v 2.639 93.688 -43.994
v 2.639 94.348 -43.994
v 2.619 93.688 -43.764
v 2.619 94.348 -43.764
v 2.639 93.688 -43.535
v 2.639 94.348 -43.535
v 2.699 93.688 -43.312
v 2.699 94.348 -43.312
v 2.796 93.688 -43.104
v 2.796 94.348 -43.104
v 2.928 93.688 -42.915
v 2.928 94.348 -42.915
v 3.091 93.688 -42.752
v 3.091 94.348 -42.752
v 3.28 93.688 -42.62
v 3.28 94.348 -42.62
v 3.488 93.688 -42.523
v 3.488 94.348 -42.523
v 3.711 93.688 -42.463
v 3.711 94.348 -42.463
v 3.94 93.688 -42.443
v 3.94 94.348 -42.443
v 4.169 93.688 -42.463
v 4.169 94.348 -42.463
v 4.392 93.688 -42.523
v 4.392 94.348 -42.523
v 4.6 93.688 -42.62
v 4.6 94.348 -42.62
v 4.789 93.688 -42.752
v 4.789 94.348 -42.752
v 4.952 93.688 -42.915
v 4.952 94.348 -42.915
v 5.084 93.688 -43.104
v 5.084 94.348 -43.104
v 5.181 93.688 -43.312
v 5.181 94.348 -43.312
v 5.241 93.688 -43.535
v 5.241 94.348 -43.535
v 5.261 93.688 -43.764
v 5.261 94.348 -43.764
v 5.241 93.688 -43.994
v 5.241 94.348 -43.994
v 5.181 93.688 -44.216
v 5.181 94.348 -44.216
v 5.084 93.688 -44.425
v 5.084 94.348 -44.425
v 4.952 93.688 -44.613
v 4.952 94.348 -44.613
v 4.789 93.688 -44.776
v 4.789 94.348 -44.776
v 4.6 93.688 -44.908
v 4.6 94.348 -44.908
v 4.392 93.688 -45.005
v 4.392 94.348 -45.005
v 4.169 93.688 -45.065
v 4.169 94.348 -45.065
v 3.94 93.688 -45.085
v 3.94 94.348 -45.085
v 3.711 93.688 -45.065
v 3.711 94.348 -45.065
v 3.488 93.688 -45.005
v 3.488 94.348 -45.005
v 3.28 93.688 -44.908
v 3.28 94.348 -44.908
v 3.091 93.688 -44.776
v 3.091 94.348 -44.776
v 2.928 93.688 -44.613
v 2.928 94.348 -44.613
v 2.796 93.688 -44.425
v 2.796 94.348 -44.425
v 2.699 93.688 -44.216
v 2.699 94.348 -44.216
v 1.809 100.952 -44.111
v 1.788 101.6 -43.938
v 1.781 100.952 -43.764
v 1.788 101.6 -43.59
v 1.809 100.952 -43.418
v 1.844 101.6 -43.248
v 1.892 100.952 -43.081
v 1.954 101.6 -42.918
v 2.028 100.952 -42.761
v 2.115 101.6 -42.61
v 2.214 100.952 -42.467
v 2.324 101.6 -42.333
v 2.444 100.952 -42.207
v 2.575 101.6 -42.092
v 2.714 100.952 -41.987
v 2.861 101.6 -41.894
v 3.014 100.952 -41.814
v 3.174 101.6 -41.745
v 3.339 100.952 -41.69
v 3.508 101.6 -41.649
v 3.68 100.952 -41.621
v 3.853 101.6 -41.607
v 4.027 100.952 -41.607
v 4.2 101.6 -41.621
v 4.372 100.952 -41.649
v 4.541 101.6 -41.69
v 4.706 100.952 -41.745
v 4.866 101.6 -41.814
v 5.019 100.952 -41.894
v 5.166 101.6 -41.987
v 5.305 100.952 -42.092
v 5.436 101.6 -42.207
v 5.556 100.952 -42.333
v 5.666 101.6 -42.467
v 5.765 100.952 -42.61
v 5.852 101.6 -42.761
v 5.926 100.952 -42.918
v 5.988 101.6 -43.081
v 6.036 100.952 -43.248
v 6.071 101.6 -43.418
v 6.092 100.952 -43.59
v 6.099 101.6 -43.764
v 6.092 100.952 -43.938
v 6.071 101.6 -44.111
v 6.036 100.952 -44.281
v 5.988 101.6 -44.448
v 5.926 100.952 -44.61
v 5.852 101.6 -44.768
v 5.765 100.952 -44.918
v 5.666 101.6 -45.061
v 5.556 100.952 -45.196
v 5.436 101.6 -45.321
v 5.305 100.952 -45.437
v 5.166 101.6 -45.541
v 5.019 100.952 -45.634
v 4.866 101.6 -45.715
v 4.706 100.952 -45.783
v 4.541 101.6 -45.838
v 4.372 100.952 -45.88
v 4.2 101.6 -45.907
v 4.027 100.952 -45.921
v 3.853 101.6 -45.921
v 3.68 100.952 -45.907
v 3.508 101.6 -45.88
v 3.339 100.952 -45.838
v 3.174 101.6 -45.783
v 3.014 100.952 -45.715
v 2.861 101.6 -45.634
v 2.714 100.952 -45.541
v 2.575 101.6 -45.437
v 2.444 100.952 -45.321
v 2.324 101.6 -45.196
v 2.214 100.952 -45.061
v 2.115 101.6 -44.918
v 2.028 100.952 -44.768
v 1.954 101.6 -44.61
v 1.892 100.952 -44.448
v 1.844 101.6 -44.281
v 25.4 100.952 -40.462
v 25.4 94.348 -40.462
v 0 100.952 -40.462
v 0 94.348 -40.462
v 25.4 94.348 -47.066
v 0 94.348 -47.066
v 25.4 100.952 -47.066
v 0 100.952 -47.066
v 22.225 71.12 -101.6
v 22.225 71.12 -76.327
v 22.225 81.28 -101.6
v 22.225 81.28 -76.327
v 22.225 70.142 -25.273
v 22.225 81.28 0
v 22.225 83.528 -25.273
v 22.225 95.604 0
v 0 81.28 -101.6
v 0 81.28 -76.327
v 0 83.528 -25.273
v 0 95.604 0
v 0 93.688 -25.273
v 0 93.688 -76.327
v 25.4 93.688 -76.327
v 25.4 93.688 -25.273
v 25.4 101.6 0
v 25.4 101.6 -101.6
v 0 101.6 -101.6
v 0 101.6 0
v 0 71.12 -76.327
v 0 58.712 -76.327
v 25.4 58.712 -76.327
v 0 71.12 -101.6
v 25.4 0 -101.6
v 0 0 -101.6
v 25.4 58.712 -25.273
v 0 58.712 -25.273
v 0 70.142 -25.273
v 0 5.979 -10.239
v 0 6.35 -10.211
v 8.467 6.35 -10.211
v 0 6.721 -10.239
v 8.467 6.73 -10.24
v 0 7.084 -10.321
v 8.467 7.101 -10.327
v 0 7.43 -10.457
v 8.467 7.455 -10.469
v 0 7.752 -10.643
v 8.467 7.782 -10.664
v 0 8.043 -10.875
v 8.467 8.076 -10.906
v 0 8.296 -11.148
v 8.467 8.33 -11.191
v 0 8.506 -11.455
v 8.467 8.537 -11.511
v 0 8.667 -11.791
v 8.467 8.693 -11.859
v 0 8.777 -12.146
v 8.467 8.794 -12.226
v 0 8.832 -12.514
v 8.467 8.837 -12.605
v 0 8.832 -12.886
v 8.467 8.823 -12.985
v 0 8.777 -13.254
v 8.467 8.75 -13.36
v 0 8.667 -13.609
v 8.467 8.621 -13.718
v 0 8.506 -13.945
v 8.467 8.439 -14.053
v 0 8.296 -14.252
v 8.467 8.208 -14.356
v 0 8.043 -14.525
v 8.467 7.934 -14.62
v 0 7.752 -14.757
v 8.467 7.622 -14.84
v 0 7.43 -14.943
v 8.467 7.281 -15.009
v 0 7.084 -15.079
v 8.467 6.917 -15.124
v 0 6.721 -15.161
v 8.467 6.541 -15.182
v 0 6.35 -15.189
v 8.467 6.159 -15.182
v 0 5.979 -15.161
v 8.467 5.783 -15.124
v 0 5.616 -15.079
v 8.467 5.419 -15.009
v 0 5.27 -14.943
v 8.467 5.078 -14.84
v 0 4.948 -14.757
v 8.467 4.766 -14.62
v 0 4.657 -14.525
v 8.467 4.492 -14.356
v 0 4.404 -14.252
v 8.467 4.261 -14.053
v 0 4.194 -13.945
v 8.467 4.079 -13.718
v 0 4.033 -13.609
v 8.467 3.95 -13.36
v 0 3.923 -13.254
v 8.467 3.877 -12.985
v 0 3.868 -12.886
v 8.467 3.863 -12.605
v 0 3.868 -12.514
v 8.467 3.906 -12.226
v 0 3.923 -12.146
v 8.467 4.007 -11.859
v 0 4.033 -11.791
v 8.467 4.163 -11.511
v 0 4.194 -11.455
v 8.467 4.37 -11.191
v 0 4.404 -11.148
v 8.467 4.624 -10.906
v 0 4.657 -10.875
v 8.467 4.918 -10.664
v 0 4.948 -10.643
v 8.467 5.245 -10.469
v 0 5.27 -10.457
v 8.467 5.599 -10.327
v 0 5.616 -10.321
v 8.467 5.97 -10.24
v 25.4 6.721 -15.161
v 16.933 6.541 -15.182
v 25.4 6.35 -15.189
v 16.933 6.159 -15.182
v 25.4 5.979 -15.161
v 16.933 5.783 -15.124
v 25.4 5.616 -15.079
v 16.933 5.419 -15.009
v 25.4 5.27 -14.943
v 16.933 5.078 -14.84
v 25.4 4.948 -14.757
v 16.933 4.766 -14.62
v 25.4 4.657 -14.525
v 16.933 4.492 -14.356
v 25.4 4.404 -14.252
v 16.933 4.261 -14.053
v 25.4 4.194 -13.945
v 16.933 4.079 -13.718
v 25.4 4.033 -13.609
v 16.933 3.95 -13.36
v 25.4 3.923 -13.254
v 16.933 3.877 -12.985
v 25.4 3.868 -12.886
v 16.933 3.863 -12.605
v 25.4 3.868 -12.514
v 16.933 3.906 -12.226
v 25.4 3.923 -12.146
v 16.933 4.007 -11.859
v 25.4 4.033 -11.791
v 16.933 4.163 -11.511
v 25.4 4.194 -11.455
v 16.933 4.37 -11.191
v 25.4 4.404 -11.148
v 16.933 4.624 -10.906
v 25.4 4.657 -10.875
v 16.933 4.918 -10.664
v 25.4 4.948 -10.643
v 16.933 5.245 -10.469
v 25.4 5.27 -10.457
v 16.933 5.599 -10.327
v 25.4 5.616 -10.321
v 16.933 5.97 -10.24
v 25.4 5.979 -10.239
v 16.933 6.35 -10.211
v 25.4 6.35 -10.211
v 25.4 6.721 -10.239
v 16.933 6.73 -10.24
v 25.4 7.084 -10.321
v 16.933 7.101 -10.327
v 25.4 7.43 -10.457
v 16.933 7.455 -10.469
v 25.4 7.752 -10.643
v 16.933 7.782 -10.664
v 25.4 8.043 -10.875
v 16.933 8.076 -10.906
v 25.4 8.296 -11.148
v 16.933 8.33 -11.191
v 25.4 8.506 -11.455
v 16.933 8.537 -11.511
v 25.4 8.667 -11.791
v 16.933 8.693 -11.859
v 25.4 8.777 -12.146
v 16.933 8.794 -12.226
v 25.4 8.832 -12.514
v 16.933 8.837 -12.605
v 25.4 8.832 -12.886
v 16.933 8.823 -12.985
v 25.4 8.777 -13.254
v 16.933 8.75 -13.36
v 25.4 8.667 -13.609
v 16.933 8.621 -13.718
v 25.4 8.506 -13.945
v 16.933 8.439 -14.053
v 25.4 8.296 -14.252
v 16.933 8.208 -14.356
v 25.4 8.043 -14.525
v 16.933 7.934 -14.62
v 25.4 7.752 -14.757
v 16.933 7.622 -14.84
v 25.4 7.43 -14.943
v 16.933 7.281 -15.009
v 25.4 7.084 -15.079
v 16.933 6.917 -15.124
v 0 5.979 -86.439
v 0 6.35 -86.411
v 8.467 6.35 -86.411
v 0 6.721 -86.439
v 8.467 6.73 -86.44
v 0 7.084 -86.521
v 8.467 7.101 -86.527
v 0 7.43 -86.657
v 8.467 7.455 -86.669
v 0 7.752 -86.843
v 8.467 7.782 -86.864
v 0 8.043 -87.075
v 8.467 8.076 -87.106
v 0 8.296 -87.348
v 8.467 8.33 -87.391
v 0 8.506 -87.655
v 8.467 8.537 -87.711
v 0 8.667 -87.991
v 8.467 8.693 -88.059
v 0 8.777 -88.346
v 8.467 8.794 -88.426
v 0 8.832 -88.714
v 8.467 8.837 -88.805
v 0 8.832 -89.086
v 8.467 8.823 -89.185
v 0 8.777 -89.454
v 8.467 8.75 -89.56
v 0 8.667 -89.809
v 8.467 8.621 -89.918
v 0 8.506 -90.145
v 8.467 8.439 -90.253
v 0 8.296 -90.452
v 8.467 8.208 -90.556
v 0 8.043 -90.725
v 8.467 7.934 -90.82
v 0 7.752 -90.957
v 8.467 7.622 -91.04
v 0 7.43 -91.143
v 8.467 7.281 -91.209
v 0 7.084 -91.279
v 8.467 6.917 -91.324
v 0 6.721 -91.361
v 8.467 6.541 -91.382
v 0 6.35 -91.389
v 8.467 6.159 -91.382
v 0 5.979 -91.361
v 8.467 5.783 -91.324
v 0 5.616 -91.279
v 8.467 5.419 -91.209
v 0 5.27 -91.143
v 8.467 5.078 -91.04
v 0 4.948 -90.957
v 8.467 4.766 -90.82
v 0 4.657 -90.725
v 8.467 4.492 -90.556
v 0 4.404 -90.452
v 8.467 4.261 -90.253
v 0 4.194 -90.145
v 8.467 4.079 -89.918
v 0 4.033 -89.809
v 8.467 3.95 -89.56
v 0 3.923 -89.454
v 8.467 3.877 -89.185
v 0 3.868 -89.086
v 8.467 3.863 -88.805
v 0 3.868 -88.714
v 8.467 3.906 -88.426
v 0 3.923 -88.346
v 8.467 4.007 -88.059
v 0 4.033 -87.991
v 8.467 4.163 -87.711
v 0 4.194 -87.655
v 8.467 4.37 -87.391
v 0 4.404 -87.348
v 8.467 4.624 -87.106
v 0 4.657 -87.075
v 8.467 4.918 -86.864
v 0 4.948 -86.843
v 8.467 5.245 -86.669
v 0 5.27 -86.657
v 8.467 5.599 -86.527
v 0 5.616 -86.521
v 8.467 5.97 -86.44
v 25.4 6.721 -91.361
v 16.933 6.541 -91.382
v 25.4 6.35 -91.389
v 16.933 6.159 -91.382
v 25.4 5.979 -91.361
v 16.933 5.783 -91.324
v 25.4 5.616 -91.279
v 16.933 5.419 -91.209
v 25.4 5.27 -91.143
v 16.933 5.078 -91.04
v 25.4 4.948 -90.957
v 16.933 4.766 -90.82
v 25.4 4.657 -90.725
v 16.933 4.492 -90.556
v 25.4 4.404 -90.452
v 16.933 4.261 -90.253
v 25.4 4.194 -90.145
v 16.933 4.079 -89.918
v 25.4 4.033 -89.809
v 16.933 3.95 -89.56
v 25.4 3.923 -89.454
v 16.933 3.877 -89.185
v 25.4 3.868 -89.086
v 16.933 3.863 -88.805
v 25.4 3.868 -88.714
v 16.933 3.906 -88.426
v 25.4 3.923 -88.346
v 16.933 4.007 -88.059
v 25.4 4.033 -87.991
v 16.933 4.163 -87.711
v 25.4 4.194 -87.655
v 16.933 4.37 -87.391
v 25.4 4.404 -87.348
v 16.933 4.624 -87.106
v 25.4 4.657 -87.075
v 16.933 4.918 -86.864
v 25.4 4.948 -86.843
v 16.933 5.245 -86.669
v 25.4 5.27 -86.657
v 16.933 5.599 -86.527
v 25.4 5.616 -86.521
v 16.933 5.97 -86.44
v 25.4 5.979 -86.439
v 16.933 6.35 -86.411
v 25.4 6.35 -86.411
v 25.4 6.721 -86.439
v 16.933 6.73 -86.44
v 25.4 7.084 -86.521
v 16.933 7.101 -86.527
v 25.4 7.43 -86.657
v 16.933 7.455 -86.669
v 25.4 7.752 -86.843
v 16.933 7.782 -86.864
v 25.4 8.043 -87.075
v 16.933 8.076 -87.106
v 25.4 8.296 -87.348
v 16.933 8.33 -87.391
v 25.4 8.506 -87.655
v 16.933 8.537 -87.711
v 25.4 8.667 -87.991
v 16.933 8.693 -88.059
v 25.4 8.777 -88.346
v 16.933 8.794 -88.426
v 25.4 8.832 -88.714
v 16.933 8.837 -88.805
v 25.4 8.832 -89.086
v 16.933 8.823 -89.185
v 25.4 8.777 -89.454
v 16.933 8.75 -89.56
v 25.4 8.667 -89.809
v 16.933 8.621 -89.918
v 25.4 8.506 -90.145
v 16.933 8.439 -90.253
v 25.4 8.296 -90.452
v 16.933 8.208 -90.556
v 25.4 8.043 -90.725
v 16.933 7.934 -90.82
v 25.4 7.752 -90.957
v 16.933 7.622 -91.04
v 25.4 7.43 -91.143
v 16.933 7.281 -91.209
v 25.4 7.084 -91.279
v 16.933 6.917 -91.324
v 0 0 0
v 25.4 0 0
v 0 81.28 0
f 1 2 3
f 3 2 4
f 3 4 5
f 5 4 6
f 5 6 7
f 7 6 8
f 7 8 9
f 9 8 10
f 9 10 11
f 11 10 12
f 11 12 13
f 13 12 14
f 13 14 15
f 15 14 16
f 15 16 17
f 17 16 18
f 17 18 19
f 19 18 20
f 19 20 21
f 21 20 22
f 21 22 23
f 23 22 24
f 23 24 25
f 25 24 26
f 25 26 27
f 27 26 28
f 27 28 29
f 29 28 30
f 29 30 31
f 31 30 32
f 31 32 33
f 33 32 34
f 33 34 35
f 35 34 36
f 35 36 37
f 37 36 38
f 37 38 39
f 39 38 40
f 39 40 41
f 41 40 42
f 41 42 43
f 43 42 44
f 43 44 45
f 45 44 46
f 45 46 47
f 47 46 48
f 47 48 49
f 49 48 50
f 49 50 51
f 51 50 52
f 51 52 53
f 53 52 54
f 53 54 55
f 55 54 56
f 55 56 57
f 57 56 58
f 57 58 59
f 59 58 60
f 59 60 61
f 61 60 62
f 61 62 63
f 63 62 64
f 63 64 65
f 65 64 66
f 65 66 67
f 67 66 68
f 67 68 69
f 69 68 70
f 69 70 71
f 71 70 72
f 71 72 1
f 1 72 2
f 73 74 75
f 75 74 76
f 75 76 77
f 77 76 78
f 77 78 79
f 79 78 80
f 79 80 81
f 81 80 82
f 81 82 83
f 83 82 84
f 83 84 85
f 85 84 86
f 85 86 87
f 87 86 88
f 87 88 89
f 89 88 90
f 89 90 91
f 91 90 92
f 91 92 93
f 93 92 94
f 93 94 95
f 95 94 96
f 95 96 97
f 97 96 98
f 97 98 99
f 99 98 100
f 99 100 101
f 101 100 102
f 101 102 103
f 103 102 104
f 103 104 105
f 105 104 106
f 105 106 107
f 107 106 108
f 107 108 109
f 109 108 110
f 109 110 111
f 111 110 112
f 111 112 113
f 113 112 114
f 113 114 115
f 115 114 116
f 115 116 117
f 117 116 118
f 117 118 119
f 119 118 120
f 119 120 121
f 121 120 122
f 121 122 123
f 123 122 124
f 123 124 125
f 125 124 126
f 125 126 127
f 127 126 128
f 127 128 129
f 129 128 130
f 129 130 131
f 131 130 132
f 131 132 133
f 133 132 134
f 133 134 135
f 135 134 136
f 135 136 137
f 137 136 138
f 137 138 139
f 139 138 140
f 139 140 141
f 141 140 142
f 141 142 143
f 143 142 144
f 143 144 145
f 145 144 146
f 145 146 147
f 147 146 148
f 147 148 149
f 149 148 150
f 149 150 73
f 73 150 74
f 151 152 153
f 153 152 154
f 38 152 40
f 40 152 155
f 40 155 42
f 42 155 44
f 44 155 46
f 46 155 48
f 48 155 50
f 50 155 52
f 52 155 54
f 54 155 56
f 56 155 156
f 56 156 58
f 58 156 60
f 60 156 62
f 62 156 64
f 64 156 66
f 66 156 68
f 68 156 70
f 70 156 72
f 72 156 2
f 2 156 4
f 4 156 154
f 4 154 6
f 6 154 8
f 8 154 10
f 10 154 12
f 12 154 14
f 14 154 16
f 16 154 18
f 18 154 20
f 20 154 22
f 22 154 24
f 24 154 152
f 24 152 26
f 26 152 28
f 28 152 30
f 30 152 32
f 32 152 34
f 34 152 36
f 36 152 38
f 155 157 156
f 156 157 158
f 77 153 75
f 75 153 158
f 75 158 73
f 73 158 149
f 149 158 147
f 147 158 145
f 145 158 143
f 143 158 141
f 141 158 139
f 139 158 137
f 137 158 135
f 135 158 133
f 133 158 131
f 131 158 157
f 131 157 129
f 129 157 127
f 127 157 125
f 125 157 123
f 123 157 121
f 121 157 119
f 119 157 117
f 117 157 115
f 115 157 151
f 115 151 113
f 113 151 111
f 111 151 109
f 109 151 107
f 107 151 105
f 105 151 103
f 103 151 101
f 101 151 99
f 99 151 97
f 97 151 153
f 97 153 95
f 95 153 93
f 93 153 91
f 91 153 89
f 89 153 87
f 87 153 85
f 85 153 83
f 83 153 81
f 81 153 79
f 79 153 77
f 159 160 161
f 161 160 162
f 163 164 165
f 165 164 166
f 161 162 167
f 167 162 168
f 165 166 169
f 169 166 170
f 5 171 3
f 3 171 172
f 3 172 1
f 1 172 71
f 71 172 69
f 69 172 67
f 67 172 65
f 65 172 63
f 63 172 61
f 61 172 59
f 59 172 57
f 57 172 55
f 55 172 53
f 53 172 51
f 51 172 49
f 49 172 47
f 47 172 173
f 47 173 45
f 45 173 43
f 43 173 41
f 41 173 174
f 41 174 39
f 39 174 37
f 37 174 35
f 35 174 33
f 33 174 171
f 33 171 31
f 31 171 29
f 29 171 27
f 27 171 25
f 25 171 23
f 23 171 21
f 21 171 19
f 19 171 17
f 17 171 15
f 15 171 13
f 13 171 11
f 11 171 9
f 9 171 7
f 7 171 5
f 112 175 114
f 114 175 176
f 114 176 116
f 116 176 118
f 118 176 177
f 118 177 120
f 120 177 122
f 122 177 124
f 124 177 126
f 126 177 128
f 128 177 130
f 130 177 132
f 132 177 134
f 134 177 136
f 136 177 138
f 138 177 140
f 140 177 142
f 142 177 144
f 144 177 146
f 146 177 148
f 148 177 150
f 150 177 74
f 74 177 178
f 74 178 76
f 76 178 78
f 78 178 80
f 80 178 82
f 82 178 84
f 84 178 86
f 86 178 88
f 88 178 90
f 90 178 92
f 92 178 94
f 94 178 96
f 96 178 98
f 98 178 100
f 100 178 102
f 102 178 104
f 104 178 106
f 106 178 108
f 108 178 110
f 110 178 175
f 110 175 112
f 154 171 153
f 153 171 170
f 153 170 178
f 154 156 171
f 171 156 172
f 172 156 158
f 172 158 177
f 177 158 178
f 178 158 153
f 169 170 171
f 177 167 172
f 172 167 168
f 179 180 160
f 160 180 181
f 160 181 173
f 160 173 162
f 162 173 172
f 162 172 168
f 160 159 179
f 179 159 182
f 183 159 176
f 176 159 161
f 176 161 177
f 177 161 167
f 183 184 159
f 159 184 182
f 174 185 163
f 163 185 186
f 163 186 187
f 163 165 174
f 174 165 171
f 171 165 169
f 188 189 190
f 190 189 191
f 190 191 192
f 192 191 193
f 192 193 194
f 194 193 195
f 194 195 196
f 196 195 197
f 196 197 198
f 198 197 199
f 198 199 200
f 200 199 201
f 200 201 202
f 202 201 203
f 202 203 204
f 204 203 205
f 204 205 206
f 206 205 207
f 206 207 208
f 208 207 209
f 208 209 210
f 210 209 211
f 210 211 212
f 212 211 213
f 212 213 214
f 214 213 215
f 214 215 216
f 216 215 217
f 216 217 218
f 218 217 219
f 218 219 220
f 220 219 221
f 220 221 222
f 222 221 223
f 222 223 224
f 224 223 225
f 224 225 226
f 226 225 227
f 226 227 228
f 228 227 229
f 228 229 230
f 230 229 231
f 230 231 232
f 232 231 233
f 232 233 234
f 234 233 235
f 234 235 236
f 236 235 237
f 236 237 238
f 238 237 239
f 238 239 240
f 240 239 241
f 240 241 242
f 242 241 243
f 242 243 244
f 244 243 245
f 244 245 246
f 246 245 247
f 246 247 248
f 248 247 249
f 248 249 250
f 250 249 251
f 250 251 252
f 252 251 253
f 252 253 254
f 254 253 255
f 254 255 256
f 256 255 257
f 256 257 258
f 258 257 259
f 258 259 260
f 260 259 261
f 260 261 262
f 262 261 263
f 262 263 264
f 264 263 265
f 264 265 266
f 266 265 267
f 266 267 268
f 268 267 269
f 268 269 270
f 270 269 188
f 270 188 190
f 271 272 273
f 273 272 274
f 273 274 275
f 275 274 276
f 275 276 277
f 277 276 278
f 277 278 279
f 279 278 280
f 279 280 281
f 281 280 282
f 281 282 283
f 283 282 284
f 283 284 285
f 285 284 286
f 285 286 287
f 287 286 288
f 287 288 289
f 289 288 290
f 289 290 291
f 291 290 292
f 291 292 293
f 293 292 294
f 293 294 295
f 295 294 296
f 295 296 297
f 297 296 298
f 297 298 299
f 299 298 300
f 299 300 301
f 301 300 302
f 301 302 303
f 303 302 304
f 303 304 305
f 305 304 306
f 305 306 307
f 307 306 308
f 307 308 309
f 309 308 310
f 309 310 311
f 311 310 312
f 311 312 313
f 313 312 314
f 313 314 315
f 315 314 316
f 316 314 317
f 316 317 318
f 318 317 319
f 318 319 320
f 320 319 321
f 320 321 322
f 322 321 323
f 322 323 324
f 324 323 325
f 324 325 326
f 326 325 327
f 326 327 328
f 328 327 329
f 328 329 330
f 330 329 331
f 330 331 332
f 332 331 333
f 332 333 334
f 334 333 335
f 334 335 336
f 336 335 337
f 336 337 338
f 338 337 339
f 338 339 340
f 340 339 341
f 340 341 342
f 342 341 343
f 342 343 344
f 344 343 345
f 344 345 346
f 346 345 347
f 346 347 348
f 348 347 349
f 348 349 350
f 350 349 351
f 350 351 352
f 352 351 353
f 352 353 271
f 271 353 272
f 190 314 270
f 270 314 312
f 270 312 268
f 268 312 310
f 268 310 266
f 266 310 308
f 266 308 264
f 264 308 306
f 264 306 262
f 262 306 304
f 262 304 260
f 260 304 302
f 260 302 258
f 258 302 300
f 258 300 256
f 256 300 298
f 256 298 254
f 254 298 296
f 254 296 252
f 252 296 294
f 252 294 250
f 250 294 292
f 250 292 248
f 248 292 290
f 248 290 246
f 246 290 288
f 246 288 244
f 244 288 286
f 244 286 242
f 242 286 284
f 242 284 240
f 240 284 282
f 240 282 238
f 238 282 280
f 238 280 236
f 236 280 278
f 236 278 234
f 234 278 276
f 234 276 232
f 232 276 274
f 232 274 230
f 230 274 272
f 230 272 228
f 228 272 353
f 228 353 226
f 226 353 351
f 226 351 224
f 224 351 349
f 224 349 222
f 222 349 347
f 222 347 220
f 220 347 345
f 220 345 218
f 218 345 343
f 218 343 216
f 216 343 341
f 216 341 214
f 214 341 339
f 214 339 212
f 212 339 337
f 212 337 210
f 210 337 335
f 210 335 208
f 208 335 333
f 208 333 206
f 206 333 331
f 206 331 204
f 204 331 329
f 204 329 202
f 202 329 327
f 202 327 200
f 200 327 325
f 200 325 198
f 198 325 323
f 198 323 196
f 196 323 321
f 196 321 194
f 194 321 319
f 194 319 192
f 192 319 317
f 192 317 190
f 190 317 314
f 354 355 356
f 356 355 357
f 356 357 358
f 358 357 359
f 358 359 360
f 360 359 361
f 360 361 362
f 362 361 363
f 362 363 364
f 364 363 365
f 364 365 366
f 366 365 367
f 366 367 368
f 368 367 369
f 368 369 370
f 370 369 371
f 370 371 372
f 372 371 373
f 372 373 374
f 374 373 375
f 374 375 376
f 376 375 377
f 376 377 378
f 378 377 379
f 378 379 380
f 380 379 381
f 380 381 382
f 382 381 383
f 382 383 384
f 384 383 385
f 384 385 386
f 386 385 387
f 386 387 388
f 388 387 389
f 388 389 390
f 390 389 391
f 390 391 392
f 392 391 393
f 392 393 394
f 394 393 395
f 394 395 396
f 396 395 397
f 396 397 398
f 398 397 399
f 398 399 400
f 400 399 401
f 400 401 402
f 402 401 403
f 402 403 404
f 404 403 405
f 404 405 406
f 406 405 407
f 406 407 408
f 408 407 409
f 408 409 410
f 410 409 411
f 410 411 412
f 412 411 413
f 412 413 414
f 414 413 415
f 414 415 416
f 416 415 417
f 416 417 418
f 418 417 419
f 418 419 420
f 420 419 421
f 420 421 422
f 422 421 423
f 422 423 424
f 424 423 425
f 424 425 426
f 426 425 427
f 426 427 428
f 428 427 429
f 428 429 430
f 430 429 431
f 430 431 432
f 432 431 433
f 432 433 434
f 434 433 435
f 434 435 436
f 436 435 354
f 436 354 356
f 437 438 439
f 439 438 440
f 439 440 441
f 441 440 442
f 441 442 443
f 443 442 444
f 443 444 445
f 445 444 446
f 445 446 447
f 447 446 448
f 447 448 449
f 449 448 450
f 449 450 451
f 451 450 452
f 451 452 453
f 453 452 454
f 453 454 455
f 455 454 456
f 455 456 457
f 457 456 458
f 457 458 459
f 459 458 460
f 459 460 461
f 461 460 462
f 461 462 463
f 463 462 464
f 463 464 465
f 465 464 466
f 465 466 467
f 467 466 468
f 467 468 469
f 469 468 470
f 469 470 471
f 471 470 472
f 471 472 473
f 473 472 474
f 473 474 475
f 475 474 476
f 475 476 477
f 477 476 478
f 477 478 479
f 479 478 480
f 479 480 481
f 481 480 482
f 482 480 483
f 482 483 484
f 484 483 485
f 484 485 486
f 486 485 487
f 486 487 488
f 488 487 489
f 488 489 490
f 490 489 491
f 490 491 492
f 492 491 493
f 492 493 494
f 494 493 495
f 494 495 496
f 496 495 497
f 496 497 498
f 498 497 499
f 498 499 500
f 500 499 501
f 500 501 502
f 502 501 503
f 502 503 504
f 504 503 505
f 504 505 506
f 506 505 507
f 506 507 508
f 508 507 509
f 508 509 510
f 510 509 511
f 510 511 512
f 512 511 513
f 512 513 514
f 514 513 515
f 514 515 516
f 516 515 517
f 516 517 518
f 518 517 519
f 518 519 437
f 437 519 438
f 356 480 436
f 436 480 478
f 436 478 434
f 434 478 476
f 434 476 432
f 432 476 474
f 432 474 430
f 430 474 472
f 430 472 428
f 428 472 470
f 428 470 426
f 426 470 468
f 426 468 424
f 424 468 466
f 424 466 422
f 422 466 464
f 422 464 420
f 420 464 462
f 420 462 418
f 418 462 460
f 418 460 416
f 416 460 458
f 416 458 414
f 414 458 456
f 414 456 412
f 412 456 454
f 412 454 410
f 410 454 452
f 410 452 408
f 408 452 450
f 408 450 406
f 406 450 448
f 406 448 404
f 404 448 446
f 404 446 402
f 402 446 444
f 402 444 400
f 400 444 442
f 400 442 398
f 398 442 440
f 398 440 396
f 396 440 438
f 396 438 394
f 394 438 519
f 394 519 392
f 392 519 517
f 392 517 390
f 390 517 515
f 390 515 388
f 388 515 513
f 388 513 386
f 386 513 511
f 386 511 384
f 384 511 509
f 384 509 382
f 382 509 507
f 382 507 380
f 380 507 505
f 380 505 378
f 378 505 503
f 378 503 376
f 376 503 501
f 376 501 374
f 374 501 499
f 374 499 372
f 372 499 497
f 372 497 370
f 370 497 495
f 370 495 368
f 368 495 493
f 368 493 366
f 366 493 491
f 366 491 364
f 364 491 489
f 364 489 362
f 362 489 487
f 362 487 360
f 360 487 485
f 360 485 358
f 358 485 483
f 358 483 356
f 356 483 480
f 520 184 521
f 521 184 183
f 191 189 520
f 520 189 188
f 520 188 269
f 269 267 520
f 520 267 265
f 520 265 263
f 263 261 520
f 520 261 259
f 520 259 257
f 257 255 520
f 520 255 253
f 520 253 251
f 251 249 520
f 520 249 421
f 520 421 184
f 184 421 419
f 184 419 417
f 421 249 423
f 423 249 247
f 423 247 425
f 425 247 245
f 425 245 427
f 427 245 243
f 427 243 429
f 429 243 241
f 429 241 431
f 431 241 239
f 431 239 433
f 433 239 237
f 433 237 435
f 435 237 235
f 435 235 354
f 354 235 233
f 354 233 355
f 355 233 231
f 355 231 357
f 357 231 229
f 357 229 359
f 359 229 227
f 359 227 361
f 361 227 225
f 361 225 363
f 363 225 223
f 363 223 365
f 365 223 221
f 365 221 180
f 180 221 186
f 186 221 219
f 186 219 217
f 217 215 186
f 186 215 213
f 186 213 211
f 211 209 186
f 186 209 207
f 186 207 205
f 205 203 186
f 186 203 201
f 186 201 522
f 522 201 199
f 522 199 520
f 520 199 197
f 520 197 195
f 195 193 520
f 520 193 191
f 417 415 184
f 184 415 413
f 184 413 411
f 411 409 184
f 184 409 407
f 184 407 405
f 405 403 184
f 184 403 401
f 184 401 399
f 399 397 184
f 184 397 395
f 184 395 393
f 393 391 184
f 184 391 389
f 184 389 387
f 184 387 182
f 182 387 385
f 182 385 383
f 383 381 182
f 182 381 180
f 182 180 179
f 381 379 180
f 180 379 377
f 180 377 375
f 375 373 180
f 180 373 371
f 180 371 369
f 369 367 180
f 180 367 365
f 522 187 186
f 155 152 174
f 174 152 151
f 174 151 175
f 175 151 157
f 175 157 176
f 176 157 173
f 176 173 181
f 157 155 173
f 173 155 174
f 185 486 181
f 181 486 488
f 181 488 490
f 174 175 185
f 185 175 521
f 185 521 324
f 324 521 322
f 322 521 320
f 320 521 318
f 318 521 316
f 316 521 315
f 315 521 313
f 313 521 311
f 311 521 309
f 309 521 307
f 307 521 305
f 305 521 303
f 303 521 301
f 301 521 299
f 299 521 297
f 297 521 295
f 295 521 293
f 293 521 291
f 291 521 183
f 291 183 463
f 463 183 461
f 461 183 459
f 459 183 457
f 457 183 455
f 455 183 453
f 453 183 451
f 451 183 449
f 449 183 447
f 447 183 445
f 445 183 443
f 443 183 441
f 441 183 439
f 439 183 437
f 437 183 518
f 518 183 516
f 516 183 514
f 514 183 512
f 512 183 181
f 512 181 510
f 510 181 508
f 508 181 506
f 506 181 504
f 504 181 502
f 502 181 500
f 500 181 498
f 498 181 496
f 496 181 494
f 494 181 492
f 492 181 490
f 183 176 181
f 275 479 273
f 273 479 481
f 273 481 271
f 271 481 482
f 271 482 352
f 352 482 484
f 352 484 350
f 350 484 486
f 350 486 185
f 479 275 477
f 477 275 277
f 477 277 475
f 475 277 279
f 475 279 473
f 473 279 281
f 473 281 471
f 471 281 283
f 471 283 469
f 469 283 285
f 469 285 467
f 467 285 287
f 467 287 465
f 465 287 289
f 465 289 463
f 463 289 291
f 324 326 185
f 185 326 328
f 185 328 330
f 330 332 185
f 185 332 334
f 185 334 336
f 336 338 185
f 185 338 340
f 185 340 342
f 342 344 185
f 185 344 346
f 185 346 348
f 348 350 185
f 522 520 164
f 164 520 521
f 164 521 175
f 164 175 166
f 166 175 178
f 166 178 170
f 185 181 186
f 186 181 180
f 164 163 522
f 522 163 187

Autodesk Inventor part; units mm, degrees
ref_plane "YZ Plane" through (0, 0, 0) normal (1, 0, 0) x (0, 1, 0)
ref_plane "XZ Plane" through (0, 0, 0) normal (0, 1, 0) x (-1, 0, 0)
ref_plane "XY Plane" through (0, 0, 0) normal (0, 0, 1) x (1, 0, 0)
sketch "Sketch1" plane through (0, 0, 0) normal (1, 0, 0) x (0, 1, 0)
  line L0 (0, 0) -> (101.6, 0)
  line L1 (101.6, 0) -> (101.6, -101.6)
  line L2 (101.6, -101.6) -> (0, -101.6)
  line L3 (0, -101.6) -> (0, 0)
  dimension "d0" = 101.6
  dimension "d1" = 101.6
extrude "Extrusion1" add sketch "Sketch1" along normal blind 25.4
sketch "Sketch2" plane through (25.4, 0, 0) normal (1, 0, 0) x (0, 0, -1)
  line L0 (0, 101.6) -> (0, 0) projected
  line L1 (0, 0) -> (12.7, 0)
  line L2 (12.7, 0) -> (12.7, 6.35)
  line L3 (12.7, 6.35) -> (0, 6.35)
  line L4 (0, 6.35) -> (0, 0)
  line L5 (101.6, 0) -> (101.6, 101.6) projected
  line L6 (101.6, 0) -> (88.9, 0)
  line L7 (88.9, 0) -> (88.9, 6.35)
  line L8 (88.9, 6.35) -> (101.6, 6.35)
  line L9 (101.6, 6.35) -> (101.6, 0)
  line L10 (101.6, 101.6) -> (0, 101.6) projected
  line L11 (50.8, 101.6) -> (50.8, 76.2)
  line L12 (25.273, 58.7121) -> (76.327, 58.7121)
  line L13 (76.327, 58.7121) -> (76.327, 93.6879)
  line L14 (76.327, 93.6879) -> (25.273, 93.6879)
  line L15 (25.273, 93.6879) -> (25.273, 58.7121)
  line L16 (25.273, 58.7121) -> (76.327, 93.6879) construction
  line L17 (76.327, 58.7121) -> (25.273, 93.6879) construction
  line L18 (74.9076, 71.12) -> (101.6, 71.12)
  line L19 (101.6, 71.12) -> (101.6, 81.28)
  line L20 (101.6, 81.28) -> (74.9076, 81.28)
  line L21 (74.9076, 81.28) -> (74.9076, 71.12)
  line L22 (74.9076, 71.12) -> (101.6, 81.28) construction
  line L23 (101.6, 71.12) -> (74.9076, 81.28) construction
  line L24 (25.273, 93.6879) -> (25.273, 83.5279)
  line L25 (25.273, 58.7121) -> (25.273, 70.1421)
  line L26 (25.273, 70.1421) -> (0, 81.28)
  line L27 (25.273, 83.5279) -> (0, 95.6039)
  line L28 (0, 81.28) -> (0, 95.6039)
  line L29 (25.273, 83.5279) -> (25.273, 70.1421)
  point P0 (88.2538, 76.2)
  point P1 (76.327, 81.28)
  point P2 (76.327, 71.12)
  dimension "d4" = 12.7
  dimension "d5" = 6.35
  dimension "d6" = 12.7
  dimension "d7" = 6.35
  dimension "d8" = 25.4
  dimension "d9" = 51.054
  dimension "d10" = 34.9758
  dimension "d20" = 10.16
  dimension "d21" = 10.16
  dimension "d22" = 11.43
extrude "Extrusion2" cut sketch "Sketch2" against normal blind 25.4 contours L27 L15 L26 L0 | L15 L14 L13 L20 L21 L18 L12 | L5 L18 L13 L20 | L13 L18 L21 L20
hole "Hole1" at (25.4, 6.35, -88.9) at (25.4, 6.35, -12.7) direction (-1, 0, 0) diameter 4.9784 end through all thread size "1/4-20 UNC" class "2B" standard "ANSI Unified Screw Threads"
sketch "Sketch5" plane through (25.4, 0, 0) normal (1, 0, 0) x (0, 0, -1)
  line L0 (0, 101.6) -> (0, 95.6039) projected
  line L1 (25.273, 58.7121) -> (76.327, 58.7121) projected
  line L2 (0, 101.6) -> (25.273, 101.6)
  line L3 (25.273, 101.6) -> (25.273, 58.7121)
  line L4 (25.273, 58.7121) -> (0, 58.7121)
  line L5 (0, 58.7121) -> (0, 101.6)
  line L6 (101.6, 81.28) -> (101.6, 101.6) projected
  line L7 (76.327, 58.7121) -> (101.6, 58.7121)
  line L8 (101.6, 58.7121) -> (101.6, 101.6)
  line L9 (101.6, 101.6) -> (76.327, 101.6)
  line L10 (76.327, 101.6) -> (76.327, 58.7121)
  point P0 (0, 0)
extrude "Extrusion4" add sketch "Sketch5" against normal blind 3.175
sketch "Sketch6" plane through (25.4, 0, 0) normal (1, 0, 0) x (0, 0, -1)
  line L0 (76.327, 93.6879) -> (25.273, 93.6879) projected
  line L1 (50.8, 93.6879) -> (43.7642, 93.6879)
  line L2 (43.7642, 93.6879) -> (43.7642, 97.6503)
  line L3 (101.6, 101.6) -> (0, 101.6) projected
  line L4 (40.4622, 100.9523) -> (47.0662, 100.9523)
  line L5 (47.0662, 100.9523) -> (47.0662, 94.3483)
  line L6 (47.0662, 94.3483) -> (40.4622, 94.3483)
  line L7 (40.4622, 94.3483) -> (40.4622, 100.9523)
  line L8 (40.4622, 100.9523) -> (47.0662, 94.3483) construction
  line L9 (47.0662, 100.9523) -> (40.4622, 94.3483) construction
  point P0 (0, 0)
  dimension "d30" = 7.0358
  dimension "d31" = 3.9624
  dimension "d32" = 6.604
  dimension "d33" = 6.604
extrude "Extrusion5" cut sketch "Sketch6" against normal blind 25.4
sketch "Sketch7" plane through (0, 101.6, 0) normal (0, 1, 0) x (1, 0, 0)
  line L0 (25.4, 40.4622) -> (0, 40.4622) projected
  line L1 (25.4, 47.0662) -> (0, 47.0662) projected
  line L2 (0, 47.0662) -> (0, 43.7642)
  line L3 (0, 101.6) -> (0, 0) projected
  line L4 (0, 43.7642) -> (3.94, 43.7642)
  dimension "d36" = 3.302
  dimension "d37" = 3.94
hole "Hole2" at (3.94, 101.6, -43.7642) direction (0, -1, 0) diameter 4.318 depth 6.35 tip angle 118 clearance for "Socket Head Cap Screw" size "#6" standard "Ansi Unified Screw Threads"
sketch "Sketch8" plane through (25.4, 94.3483, -40.4622) normal (0, 1, 0) x (1, 0, 0)
  point P0 (-25.4, -40.4622)
  point P1 (-21.46, 3.302)
hole "Hole3" at (3.94, 94.3483, -43.7642) direction (0, -1, 0) diameter 2.6416 depth 10.9728 tip angle 118 thread size "6-32 UNC" class "2B" standard "ANSI Unified Screw Threads"
properties part number "Al thermal core"
